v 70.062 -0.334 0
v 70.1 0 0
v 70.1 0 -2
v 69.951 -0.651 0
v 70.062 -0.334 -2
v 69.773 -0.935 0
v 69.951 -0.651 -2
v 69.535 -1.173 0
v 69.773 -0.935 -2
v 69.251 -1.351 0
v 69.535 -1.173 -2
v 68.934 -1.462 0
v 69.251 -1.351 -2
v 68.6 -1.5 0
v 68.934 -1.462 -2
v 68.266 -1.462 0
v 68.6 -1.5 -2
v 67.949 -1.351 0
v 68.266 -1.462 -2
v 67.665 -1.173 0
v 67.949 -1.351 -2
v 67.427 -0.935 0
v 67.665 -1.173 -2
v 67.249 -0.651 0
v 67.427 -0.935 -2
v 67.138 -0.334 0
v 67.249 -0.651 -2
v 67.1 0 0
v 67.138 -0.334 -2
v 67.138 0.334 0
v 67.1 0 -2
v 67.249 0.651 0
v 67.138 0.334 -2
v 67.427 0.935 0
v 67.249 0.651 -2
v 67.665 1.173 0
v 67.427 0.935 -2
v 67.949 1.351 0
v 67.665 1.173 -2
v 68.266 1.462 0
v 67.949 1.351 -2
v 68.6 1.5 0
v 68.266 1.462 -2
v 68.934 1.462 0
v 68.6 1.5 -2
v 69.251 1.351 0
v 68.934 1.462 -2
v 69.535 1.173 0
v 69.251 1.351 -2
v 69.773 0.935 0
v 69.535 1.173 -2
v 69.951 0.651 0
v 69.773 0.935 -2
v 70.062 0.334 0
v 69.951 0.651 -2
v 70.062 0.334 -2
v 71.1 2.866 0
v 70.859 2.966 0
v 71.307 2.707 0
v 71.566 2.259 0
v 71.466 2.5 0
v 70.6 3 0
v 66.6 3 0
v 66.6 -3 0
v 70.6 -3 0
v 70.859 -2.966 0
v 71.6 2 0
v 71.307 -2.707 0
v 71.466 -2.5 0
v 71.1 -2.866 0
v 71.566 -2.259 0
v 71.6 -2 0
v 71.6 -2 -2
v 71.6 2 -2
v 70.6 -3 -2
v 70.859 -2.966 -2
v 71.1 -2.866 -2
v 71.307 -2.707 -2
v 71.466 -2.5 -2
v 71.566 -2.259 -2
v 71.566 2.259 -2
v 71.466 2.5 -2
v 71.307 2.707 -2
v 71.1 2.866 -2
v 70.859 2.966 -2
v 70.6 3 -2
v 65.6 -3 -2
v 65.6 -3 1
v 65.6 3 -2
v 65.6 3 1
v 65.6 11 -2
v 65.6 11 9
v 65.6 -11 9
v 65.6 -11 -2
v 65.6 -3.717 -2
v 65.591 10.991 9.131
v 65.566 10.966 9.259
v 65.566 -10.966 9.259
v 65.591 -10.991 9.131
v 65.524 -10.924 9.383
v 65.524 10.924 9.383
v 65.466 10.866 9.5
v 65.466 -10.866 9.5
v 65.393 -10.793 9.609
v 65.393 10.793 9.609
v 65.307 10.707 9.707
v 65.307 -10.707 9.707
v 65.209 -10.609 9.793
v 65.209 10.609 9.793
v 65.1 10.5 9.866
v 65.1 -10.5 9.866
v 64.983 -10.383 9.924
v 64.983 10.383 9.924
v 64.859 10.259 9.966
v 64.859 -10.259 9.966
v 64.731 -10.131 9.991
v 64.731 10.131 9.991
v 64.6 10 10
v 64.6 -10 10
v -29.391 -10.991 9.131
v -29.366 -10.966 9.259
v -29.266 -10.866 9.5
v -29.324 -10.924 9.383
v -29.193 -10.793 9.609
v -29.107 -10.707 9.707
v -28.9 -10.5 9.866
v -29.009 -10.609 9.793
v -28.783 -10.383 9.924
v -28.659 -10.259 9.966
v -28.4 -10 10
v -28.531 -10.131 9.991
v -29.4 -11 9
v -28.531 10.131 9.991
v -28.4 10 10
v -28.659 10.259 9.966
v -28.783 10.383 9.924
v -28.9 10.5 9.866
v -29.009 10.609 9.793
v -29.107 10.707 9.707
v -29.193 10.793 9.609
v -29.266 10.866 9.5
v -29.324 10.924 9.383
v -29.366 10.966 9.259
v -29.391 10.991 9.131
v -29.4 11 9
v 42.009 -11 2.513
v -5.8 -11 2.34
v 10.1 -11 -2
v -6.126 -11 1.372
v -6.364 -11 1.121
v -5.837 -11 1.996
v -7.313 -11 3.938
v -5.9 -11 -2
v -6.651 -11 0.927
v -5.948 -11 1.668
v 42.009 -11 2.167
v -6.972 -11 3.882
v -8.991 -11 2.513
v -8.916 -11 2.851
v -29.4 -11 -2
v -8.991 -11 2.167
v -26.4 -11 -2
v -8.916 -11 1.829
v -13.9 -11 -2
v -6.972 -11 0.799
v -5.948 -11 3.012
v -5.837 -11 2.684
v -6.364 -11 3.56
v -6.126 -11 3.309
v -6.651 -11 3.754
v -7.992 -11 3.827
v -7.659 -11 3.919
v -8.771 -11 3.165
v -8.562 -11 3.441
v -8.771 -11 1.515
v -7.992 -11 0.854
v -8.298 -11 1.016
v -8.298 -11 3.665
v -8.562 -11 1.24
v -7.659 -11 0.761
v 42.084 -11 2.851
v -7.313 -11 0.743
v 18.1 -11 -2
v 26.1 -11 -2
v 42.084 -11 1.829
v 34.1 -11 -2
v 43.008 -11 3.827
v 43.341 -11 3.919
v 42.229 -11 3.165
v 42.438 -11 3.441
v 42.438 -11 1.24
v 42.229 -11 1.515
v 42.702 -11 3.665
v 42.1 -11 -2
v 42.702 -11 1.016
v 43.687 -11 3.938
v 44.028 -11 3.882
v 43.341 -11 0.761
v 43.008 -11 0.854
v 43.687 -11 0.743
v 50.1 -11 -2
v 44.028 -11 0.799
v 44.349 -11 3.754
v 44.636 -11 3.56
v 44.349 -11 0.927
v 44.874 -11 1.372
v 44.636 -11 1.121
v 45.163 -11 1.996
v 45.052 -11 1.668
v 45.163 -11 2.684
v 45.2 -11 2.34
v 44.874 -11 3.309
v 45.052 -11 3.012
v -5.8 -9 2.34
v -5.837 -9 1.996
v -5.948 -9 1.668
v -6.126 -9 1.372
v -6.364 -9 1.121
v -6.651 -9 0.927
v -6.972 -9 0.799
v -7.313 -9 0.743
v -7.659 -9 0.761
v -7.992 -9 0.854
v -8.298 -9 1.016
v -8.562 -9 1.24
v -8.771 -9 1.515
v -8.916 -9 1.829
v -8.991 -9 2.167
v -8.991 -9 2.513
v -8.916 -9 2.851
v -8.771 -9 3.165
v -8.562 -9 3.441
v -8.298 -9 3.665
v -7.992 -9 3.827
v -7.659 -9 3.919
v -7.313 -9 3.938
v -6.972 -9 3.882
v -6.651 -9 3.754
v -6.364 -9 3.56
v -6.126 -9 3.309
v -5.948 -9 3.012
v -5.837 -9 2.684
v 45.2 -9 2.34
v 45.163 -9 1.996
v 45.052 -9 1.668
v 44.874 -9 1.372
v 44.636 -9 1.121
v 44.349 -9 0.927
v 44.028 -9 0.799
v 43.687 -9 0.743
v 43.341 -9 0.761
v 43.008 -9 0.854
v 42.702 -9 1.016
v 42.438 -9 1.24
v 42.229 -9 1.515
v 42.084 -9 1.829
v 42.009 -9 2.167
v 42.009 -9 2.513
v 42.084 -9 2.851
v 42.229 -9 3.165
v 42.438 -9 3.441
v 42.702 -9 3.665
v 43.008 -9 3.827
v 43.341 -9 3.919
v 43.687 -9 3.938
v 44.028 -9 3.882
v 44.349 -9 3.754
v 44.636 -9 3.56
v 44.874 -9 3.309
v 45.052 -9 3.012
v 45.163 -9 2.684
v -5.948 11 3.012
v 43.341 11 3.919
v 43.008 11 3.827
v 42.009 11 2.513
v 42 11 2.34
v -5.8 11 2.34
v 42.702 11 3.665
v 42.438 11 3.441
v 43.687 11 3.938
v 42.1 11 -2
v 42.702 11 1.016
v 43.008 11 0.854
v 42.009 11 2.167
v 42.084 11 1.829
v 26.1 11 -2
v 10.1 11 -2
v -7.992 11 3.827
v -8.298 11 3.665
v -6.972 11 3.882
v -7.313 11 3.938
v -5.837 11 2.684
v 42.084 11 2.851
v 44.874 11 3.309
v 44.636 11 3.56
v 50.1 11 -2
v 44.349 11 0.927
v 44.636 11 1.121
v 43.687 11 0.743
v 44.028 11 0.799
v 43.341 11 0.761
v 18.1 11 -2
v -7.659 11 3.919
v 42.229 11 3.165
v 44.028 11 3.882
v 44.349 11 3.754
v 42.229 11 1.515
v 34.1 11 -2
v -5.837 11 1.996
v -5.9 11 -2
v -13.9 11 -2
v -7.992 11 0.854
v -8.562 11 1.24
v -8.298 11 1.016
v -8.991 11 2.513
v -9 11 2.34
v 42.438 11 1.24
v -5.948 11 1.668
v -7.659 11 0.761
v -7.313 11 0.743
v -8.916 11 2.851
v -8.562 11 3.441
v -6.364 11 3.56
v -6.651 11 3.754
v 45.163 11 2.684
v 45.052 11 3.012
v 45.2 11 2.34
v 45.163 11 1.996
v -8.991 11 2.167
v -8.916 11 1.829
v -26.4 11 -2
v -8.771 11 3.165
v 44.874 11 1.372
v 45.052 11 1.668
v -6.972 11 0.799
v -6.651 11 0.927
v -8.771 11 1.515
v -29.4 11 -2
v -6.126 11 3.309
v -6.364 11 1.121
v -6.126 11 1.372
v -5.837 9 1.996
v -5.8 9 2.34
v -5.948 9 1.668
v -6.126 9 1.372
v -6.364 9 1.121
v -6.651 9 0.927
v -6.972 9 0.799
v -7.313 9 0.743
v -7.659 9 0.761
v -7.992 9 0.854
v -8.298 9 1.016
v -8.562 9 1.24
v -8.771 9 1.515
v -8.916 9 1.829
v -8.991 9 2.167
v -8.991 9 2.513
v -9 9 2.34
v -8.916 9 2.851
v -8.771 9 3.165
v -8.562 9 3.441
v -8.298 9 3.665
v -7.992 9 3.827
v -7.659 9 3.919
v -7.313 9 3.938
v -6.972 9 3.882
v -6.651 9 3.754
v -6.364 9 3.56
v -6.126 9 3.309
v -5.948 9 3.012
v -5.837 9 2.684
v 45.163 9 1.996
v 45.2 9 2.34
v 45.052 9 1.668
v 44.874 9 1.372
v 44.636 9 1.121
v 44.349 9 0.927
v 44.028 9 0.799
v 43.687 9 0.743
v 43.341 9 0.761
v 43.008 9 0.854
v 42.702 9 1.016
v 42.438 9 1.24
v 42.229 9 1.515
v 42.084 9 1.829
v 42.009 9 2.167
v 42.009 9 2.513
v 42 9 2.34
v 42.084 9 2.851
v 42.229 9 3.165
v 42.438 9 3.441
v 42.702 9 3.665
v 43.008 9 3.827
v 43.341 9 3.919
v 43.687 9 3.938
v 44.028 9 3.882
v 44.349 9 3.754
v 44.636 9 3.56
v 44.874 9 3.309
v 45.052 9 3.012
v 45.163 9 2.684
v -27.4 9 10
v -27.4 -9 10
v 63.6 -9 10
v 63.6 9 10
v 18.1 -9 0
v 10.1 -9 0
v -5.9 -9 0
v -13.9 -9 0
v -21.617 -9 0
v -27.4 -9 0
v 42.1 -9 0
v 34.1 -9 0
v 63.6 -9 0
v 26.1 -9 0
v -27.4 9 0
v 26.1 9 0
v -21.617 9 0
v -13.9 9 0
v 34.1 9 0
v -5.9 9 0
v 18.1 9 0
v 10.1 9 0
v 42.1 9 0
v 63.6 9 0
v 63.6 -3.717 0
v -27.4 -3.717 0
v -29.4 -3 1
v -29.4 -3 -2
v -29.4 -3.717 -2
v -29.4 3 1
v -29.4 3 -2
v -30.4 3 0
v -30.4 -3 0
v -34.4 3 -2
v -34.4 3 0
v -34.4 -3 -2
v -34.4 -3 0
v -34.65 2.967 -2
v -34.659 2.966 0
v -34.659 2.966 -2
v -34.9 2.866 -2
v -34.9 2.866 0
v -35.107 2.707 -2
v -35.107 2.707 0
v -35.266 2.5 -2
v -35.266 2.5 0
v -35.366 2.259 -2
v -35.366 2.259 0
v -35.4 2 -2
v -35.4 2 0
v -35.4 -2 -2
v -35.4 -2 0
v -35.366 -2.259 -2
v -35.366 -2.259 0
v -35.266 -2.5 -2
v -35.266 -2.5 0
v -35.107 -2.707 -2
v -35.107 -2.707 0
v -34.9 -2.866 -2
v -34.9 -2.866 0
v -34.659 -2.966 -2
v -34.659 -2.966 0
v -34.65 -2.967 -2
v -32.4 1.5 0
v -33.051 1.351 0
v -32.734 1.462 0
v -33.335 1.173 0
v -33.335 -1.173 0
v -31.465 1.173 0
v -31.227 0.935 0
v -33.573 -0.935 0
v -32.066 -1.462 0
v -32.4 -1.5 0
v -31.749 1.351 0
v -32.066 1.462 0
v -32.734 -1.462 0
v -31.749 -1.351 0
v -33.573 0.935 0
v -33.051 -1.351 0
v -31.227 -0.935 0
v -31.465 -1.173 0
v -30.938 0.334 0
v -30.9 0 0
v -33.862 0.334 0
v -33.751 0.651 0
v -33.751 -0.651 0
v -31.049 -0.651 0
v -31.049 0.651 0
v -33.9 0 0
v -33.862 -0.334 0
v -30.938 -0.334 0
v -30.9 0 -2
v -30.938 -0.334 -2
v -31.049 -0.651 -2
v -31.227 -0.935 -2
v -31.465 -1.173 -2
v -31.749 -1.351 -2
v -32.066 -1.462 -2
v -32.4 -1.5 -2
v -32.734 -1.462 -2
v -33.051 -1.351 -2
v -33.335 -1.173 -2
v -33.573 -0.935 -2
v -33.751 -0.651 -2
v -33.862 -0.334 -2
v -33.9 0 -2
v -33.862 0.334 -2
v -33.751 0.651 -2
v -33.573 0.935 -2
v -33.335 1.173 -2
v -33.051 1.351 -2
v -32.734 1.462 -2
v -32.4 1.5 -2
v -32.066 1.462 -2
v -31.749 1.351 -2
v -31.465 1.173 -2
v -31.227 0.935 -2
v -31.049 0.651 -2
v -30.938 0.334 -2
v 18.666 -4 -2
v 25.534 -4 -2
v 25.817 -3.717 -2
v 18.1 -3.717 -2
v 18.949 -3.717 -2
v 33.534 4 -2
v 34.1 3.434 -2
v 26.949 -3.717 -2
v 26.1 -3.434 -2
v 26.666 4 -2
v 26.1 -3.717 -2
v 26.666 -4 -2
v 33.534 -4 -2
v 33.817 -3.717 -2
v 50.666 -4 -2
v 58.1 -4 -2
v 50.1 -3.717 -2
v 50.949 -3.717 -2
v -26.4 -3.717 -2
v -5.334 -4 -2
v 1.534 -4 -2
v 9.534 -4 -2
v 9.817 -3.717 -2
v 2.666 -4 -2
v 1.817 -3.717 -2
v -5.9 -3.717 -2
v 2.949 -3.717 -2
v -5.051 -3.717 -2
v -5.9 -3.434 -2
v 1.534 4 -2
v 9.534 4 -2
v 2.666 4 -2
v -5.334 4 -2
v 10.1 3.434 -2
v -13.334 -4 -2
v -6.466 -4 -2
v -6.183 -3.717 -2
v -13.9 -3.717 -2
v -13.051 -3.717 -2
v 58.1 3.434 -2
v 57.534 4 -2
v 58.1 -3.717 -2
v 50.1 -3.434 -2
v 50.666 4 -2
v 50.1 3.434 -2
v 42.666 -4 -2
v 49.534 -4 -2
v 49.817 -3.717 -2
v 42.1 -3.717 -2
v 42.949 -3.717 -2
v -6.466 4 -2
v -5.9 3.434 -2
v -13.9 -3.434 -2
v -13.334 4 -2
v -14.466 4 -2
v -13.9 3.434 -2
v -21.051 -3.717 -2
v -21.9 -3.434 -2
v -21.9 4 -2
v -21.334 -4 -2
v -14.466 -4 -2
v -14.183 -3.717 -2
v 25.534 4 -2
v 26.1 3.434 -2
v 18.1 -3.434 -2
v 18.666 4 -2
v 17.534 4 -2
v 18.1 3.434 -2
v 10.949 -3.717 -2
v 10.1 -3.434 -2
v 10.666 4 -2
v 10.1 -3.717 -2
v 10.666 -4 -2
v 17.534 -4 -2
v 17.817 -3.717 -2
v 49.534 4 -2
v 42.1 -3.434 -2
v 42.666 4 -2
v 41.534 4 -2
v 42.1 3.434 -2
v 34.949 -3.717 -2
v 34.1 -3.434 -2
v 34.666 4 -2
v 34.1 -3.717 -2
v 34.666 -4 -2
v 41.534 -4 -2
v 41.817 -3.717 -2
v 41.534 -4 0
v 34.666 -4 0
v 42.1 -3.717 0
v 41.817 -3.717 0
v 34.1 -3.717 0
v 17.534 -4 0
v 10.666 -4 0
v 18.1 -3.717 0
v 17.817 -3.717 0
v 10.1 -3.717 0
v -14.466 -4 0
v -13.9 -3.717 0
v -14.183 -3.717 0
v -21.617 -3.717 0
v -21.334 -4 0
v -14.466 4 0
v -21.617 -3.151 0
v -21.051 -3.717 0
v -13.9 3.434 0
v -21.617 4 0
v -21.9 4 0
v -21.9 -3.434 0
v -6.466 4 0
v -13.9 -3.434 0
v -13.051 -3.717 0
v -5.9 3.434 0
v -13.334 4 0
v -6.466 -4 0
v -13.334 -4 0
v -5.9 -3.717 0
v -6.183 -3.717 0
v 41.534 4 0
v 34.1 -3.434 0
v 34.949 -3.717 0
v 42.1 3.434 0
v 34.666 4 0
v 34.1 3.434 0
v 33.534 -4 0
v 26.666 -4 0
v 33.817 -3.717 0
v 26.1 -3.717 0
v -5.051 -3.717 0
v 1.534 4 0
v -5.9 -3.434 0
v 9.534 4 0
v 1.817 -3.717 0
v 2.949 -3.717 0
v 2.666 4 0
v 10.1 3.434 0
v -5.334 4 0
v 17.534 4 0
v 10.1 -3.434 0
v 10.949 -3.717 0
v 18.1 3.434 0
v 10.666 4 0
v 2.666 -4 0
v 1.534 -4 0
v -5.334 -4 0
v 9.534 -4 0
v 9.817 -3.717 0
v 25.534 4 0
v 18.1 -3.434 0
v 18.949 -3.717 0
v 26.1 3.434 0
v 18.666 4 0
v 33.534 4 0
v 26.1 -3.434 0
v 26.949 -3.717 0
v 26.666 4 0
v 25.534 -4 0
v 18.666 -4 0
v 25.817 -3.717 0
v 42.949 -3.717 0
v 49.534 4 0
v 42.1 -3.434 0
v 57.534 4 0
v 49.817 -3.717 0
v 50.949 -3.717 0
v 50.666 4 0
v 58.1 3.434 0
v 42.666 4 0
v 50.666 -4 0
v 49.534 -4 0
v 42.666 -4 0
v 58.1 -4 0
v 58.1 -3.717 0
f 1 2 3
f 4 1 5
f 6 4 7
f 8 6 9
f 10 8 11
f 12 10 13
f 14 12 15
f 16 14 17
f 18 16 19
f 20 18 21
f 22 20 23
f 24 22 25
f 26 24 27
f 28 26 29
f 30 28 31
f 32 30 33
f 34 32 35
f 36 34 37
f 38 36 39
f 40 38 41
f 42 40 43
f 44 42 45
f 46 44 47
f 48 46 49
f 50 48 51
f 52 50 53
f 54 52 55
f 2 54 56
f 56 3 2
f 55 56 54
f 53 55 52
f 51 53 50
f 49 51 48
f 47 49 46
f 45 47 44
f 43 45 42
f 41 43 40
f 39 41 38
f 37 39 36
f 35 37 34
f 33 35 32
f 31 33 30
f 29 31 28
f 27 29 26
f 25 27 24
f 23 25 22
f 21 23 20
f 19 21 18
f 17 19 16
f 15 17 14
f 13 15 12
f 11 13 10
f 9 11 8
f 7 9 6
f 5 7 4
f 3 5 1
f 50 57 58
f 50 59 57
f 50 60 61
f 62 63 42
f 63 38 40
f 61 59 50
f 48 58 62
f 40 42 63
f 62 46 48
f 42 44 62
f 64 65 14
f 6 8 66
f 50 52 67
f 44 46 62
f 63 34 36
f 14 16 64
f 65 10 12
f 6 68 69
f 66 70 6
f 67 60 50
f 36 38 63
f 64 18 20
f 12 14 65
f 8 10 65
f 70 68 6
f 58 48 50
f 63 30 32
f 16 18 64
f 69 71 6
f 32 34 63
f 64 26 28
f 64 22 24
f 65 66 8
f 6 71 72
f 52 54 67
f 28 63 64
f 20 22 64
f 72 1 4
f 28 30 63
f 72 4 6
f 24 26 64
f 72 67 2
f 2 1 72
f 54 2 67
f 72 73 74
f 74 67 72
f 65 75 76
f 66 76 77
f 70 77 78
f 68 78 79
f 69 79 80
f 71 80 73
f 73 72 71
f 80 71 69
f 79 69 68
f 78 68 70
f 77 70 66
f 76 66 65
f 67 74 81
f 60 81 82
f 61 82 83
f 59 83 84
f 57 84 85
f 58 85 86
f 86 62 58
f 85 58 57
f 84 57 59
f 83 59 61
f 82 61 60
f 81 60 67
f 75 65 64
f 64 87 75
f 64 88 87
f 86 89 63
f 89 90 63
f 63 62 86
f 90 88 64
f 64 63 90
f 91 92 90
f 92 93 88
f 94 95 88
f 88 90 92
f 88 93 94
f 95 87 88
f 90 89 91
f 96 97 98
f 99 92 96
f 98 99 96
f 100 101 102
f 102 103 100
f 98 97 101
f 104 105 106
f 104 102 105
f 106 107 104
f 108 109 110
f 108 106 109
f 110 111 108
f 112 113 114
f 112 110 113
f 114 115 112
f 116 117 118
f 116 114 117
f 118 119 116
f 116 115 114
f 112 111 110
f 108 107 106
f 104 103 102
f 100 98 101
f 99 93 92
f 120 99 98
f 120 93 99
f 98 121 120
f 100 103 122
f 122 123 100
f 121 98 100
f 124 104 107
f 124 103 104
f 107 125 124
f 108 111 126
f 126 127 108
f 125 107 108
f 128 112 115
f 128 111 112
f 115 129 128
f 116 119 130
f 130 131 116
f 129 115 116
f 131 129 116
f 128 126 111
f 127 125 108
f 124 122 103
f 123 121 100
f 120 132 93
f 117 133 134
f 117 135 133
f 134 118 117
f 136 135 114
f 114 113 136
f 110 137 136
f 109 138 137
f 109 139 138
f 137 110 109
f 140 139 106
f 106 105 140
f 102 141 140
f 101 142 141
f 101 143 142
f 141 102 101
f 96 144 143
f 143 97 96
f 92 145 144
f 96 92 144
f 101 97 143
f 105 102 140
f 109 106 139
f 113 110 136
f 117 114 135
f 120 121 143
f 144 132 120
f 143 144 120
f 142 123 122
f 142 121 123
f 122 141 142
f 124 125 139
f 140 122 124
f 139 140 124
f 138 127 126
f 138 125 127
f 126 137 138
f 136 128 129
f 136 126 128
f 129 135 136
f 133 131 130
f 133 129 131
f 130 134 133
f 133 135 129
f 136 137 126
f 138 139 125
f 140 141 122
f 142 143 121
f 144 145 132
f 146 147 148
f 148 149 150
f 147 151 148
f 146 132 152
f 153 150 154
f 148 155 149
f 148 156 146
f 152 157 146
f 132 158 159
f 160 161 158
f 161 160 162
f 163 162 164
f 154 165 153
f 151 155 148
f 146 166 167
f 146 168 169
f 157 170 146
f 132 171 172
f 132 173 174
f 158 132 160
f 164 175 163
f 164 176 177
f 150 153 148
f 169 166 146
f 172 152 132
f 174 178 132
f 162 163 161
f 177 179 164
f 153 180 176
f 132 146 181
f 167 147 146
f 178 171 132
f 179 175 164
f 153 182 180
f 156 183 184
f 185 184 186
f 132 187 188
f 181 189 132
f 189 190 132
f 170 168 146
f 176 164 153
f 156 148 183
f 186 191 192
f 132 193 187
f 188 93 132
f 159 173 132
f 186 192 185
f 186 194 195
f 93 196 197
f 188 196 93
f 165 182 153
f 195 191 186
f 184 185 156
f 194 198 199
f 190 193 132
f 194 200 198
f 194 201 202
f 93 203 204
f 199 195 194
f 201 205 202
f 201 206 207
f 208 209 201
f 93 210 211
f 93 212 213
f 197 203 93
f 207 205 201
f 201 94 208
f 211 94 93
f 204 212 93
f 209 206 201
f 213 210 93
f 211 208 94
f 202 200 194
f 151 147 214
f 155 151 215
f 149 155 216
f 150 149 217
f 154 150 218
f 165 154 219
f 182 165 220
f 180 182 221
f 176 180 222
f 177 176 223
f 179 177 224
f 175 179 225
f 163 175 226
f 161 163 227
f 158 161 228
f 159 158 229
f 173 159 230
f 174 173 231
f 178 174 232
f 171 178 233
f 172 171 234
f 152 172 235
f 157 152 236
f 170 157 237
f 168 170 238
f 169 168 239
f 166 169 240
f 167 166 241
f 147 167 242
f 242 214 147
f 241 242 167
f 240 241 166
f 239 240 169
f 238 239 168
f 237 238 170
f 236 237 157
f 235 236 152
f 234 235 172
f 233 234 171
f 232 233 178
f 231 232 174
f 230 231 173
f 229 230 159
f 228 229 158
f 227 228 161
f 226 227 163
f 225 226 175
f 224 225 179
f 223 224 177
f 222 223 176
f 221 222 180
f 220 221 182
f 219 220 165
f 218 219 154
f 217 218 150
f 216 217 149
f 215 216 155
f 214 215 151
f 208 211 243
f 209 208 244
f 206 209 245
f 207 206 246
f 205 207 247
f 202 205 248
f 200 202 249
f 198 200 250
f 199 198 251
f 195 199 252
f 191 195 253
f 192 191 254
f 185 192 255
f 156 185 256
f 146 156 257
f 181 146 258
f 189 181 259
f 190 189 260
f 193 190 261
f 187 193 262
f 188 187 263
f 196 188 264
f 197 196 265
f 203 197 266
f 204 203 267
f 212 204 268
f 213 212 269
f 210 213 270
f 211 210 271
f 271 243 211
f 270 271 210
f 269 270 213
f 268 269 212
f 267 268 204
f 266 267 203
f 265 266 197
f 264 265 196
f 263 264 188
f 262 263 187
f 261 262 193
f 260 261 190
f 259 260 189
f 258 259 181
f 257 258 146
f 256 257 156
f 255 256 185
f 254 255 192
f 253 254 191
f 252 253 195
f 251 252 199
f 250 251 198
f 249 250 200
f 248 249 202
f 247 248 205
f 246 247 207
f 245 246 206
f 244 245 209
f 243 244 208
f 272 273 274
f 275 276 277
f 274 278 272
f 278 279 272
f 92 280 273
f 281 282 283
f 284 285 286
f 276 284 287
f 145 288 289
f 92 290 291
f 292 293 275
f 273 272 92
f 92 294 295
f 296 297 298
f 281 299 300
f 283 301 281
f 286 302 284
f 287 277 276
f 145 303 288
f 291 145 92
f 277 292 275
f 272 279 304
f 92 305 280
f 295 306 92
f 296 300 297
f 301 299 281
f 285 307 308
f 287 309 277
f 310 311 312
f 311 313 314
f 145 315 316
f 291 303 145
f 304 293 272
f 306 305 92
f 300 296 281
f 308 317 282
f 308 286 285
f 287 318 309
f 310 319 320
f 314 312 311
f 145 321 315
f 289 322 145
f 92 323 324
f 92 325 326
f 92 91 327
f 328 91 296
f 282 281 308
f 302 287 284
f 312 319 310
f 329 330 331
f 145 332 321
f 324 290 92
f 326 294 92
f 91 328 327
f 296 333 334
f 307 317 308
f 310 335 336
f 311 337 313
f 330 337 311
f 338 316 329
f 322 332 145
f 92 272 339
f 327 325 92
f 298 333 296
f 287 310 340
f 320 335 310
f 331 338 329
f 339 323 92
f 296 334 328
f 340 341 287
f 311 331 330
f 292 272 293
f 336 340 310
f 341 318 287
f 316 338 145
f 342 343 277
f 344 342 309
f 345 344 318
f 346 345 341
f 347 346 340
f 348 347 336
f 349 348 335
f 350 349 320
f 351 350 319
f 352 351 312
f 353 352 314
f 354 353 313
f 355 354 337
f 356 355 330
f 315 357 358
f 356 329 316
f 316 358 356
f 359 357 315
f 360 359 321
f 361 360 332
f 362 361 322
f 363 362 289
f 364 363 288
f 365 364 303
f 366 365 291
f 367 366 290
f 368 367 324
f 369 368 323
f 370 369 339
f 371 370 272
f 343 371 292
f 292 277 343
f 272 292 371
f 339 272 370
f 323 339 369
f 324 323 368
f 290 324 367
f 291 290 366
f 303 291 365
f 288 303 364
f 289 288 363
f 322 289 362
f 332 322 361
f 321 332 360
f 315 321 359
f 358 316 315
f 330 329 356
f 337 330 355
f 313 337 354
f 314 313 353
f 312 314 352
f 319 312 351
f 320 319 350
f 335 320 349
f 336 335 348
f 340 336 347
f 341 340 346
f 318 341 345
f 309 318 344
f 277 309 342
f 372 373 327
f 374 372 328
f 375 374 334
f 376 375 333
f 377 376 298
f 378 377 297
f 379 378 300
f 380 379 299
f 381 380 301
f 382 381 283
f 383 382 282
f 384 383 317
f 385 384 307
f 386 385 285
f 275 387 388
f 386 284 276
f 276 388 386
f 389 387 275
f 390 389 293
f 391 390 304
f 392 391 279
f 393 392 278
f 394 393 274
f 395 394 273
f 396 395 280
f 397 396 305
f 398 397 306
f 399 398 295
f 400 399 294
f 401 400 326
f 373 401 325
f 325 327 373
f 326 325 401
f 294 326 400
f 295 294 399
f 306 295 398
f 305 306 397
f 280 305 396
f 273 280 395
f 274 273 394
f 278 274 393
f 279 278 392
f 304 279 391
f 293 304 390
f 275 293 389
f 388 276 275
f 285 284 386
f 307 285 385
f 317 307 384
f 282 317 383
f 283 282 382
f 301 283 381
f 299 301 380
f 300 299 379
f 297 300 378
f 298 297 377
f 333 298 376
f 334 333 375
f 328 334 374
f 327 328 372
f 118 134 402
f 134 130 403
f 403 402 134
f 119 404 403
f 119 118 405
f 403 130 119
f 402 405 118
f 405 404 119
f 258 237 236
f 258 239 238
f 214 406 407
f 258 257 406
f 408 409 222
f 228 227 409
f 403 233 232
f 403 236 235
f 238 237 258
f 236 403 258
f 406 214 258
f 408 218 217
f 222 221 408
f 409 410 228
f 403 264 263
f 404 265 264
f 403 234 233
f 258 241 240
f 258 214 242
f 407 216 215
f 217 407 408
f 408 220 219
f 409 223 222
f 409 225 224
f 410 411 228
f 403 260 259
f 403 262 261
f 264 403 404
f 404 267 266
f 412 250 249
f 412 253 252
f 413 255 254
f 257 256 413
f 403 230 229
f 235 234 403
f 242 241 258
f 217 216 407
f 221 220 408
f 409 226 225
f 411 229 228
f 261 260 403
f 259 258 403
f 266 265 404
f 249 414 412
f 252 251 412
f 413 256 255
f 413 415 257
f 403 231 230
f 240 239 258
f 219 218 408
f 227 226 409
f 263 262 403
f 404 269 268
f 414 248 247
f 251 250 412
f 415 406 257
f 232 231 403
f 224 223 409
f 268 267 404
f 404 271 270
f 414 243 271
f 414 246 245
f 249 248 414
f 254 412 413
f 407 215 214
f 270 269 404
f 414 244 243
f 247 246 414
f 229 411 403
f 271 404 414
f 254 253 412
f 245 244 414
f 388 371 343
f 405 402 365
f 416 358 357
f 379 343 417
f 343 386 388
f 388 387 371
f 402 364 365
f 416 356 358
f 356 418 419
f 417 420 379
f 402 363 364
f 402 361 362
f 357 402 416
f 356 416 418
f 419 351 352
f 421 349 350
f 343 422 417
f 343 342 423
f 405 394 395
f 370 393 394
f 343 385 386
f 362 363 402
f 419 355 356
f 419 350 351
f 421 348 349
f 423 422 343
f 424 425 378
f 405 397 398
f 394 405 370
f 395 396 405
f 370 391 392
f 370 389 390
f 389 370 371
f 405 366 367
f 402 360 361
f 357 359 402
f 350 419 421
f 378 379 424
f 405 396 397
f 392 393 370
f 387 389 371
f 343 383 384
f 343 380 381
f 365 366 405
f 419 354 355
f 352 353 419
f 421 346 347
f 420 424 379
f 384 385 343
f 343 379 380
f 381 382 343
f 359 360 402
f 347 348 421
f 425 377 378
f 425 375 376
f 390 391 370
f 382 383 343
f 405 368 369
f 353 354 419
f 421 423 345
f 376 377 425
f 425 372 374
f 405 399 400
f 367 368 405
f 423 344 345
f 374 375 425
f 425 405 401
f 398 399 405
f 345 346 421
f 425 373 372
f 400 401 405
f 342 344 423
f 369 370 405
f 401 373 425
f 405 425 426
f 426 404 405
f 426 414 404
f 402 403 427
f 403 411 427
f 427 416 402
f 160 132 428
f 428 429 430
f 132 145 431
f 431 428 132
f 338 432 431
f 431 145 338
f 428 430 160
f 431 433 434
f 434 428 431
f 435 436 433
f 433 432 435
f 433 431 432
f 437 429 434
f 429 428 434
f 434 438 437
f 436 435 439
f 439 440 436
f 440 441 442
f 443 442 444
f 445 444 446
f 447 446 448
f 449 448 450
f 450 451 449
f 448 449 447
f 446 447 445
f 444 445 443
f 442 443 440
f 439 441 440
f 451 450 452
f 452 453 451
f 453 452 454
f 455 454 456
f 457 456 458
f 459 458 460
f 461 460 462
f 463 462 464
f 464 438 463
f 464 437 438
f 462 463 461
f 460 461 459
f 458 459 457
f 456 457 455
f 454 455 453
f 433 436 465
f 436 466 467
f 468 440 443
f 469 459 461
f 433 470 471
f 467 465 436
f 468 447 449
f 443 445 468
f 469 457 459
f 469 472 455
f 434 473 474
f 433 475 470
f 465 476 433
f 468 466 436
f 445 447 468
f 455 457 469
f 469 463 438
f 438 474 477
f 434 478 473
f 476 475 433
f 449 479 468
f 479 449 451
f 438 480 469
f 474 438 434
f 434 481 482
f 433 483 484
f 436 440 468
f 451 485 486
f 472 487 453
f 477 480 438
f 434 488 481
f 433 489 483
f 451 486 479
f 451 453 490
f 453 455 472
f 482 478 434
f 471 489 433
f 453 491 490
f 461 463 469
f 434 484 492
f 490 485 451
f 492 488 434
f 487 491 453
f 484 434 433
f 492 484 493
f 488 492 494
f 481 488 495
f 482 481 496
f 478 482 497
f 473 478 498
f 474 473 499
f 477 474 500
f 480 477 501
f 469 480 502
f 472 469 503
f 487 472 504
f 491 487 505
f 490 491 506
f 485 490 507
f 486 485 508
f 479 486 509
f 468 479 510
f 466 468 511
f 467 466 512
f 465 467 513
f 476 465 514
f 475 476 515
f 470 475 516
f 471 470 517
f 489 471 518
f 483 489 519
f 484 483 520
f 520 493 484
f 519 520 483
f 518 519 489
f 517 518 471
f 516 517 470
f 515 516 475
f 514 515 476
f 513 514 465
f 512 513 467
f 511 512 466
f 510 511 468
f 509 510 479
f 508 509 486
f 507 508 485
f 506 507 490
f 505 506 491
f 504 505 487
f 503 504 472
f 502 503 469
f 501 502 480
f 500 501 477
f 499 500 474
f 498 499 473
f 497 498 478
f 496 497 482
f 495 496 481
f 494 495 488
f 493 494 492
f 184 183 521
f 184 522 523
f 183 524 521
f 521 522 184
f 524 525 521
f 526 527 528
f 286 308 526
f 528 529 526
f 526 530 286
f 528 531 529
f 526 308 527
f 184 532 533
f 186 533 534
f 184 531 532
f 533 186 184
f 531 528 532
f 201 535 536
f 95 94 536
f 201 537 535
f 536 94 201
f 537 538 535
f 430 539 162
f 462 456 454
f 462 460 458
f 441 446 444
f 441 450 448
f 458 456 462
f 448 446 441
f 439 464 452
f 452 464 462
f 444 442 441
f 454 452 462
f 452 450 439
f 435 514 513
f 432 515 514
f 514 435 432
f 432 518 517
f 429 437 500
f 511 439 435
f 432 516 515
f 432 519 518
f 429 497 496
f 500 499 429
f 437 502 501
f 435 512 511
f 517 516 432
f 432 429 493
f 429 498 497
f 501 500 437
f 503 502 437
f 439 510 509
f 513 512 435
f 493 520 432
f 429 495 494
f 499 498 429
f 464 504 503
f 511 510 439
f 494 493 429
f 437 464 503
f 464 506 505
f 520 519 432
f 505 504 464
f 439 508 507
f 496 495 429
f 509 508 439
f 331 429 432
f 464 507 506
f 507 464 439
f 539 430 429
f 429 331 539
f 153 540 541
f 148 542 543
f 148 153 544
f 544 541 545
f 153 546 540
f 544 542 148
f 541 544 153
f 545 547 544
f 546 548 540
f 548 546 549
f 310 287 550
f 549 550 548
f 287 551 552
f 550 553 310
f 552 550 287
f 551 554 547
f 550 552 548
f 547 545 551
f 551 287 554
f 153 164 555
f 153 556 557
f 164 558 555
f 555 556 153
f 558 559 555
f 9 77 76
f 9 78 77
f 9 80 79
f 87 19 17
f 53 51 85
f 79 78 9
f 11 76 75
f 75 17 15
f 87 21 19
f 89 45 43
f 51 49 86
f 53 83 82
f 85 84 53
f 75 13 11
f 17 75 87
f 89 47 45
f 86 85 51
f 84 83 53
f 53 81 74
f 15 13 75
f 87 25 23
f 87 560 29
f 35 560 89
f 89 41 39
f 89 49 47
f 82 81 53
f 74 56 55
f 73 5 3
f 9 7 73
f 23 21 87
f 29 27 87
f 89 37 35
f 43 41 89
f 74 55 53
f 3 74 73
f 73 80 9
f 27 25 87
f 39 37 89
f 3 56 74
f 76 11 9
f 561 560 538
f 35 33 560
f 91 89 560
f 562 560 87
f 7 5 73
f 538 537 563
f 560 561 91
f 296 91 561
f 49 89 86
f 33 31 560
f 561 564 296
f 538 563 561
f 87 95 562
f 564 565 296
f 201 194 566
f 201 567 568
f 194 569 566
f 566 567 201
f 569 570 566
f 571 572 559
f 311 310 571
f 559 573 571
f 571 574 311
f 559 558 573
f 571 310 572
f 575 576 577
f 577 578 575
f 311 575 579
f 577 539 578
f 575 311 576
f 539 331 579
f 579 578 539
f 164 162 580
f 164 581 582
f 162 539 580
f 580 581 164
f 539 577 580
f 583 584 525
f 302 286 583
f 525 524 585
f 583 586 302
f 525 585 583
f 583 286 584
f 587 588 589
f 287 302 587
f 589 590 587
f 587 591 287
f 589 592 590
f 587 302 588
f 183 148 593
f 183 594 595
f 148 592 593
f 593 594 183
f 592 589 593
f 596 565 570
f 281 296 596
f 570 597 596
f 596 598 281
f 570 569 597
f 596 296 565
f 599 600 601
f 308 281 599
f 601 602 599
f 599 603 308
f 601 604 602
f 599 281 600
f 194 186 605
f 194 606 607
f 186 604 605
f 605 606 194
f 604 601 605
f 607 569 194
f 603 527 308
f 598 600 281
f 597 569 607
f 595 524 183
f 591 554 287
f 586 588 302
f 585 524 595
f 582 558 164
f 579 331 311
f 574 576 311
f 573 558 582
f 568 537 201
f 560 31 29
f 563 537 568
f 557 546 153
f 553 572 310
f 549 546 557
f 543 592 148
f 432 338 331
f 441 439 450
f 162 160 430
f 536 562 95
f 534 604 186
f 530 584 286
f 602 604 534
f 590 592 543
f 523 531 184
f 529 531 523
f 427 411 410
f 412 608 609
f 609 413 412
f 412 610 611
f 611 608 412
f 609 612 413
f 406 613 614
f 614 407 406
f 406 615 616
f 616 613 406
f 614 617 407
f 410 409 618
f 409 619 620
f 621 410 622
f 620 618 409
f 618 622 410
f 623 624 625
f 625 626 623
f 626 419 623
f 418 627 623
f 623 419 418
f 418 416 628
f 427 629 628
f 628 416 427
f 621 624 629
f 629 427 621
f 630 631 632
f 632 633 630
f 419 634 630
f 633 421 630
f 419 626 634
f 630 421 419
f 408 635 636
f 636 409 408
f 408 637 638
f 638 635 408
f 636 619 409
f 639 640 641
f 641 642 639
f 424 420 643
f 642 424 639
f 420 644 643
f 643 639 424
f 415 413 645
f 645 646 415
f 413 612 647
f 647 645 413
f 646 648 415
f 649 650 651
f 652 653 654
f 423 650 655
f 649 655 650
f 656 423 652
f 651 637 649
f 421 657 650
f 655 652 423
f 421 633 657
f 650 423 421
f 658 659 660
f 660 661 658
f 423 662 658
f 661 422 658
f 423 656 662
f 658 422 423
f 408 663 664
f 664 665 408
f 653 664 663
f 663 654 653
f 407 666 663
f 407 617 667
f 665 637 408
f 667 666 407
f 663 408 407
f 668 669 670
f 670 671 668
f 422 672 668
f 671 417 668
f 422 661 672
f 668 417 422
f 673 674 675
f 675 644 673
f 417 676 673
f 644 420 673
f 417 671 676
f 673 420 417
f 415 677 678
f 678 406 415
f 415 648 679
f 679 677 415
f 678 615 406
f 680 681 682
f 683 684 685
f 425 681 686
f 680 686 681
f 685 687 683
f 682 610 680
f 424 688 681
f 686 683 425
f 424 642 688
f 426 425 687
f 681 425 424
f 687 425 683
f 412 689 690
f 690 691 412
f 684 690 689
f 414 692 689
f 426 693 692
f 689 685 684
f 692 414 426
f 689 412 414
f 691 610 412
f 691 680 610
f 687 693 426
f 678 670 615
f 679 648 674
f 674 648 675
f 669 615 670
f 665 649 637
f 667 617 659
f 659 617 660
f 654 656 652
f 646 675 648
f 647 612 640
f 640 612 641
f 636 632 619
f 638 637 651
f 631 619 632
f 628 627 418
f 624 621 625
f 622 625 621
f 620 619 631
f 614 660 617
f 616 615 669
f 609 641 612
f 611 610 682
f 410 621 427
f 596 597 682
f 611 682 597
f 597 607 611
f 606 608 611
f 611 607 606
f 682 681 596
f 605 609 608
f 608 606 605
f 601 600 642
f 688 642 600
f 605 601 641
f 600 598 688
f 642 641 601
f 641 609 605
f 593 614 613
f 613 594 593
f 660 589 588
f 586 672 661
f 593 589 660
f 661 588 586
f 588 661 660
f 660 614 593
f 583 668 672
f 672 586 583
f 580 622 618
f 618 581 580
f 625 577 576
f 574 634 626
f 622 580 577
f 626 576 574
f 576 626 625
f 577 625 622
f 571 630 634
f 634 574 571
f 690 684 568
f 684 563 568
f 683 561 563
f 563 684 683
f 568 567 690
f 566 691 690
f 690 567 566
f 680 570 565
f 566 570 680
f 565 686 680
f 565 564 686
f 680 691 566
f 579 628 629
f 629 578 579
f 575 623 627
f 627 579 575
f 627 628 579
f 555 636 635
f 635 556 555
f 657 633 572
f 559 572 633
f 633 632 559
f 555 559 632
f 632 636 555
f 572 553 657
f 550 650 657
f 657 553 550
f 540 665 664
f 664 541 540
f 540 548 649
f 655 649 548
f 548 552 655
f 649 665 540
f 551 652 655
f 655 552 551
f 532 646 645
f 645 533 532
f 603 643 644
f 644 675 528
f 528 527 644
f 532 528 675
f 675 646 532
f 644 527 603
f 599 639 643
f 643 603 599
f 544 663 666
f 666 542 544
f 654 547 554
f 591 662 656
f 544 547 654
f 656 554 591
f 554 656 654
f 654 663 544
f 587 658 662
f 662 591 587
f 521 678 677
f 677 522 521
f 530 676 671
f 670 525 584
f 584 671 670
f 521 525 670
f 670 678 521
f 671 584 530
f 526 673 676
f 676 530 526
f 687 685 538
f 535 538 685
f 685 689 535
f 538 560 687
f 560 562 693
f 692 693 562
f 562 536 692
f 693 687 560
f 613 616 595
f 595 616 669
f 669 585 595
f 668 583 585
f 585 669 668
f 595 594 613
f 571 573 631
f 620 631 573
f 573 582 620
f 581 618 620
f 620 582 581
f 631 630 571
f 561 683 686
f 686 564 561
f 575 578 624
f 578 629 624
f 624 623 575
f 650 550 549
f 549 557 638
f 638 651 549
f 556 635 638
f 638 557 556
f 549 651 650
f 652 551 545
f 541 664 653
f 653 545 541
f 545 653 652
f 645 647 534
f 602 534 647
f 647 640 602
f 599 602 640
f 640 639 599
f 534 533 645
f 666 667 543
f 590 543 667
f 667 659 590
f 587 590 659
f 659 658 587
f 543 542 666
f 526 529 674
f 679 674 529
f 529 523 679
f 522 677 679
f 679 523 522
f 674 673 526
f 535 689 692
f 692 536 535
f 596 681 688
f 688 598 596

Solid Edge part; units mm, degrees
sketch "Sketch1" plane through (0, 0, 0) normal (0, 0, 1) x (1, 0, 0)
  line L0 (-29.4, -11) -> (65.6, -11)
  line L1 (65.6, -11) -> (65.6, -3)
  line L2 (71.6, -3) -> (65.6, -3)
  line L3 (71.6, -3) -> (71.6, 3)
  line L4 (71.6, 3) -> (65.6, 3)
  line L5 (65.6, 3) -> (65.6, 11)
  line L6 (65.6, 11) -> (-29.4, 11)
  line L7 (-29.4, 3) -> (-29.4, 11)
  line L8 (-35.4, 3) -> (-29.4, 3)
  line L9 (-35.4, 3) -> (-35.4, -3)
  line L10 (-29.4, -3) -> (-35.4, -3)
  line L11 (-29.4, -11) -> (-29.4, -3)
  circle A0 centre (68.6, 0) radius 1.5
  circle A1 centre (-32.4, 0) radius 1.5
  line L12 (1.5343, -4) -> (9.5343, 4)
  line L13 (9.5343, 4) -> (2.6657, 4)
  line L14 (-5.3343, -4) -> (2.6657, 4)
  line L15 (-5.3343, -4) -> (1.5343, -4)
  line L16 (-6.4657, -4) -> (1.5343, 4)
  line L17 (1.5343, 4) -> (-5.3343, 4)
  line L18 (-13.3343, -4) -> (-5.3343, 4)
  line L19 (-13.3343, -4) -> (-6.4657, -4)
  line L20 (-21.9, -3.4343) -> (-14.4657, 4)
  line L21 (-14.4657, 4) -> (-21.9, 4)
  line L22 (-21.9, 4) -> (-21.9, -3.4343)
  line L23 (57.5343, 4) -> (50.6657, 4)
  line L24 (42.6657, -4) -> (50.6657, 4)
  line L25 (42.6657, -4) -> (49.5343, -4)
  line L26 (49.5343, -4) -> (57.5343, 4)
  line L27 (-14.4657, -4) -> (-6.4657, 4)
  line L28 (-6.4657, 4) -> (-13.3343, 4)
  line L29 (-21.3343, -4) -> (-13.3343, 4)
  line L30 (-21.3343, -4) -> (-14.4657, -4)
  line L31 (17.5343, -4) -> (25.5343, 4)
  line L32 (25.5343, 4) -> (18.6657, 4)
  line L33 (10.6657, -4) -> (18.6657, 4)
  line L34 (10.6657, -4) -> (17.5343, -4)
  line L35 (34.6657, -4) -> (42.6657, 4)
  line L36 (49.5343, 4) -> (42.6657, 4)
  line L37 (41.5343, -4) -> (49.5343, 4)
  line L38 (34.6657, -4) -> (41.5343, -4)
  line L39 (33.5343, -4) -> (41.5343, 4)
  line L40 (41.5343, 4) -> (34.6657, 4)
  line L41 (26.6657, -4) -> (34.6657, 4)
  line L42 (26.6657, -4) -> (33.5343, -4)
  line L43 (9.5343, -4) -> (17.5343, 4)
  line L44 (17.5343, 4) -> (10.6657, 4)
  line L45 (2.6657, -4) -> (10.6657, 4)
  line L46 (2.6657, -4) -> (9.5343, -4)
  line L47 (25.5343, -4) -> (33.5343, 4)
  line L48 (33.5343, 4) -> (26.6657, 4)
  line L49 (18.6657, -4) -> (26.6657, 4)
  line L50 (18.6657, -4) -> (25.5343, -4)
  line L51 (50.6657, -4) -> (58.1, -4)
  line L52 (58.1, 3.4343) -> (58.1, -4)
  line L53 (50.6657, -4) -> (58.1, 3.4343)
  dimension "D1" = 2
extrude "Protrusion1" add sketch "Sketch1" against normal blind 2
sketch "Sketch2" plane through (0, 0, 0) normal (0, 0, 1) x (1, 0, 0)
  line L0 (-27.4, -9) -> (63.6, -9)
  line L1 (63.6, -9) -> (63.6, 9)
  line L2 (63.6, 9) -> (-27.4, 9)
  line L3 (-27.4, -9) -> (-27.4, 9)
  line L4 (65.6, 11) -> (-29.4, 11)
  line L5 (-29.4, 3) -> (-29.4, 11)
  line L6 (-29.4, -3) -> (-29.4, 3)
  line L7 (-29.4, -11) -> (-29.4, -3)
  line L8 (-29.4, -11) -> (65.6, -11)
  line L9 (65.6, -11) -> (65.6, -3)
  line L10 (65.6, -3) -> (65.6, 3)
  line L11 (65.6, 3) -> (65.6, 11)
  dimension "D1" = 2
extrude "ExtrudedProtrusion_2" add sketch "Sketch2" along normal blind 10
fillet "Round_2" radius 1 4 edges at (71.6, -3, -1) (71.6, 3, -1) (-35.4, -3, -1) (-35.4, 3, -1)
sketch "Sketch3" plane through (0, -11, 5.5) normal (0, -1, 0) x (1, 0, 0)
  circle A0 centre (-7.4, -3.1597) radius 1.6
  circle A1 centre (43.6, -3.1597) radius 1.6
extrude "ExtrudedCutout_3" cut sketch "Sketch3" against normal blind 26
chamfer "Chamfer_5" distance 1 angle 45 2 edges at (-29.4, 0, 0) (65.6, 0, 0)
fillet "Round_7" radius 1 4 edges at (-29.4, 0, 10) (18.1, -11, 10) (18.1, 11, 10) (65.6, 0, 10)
